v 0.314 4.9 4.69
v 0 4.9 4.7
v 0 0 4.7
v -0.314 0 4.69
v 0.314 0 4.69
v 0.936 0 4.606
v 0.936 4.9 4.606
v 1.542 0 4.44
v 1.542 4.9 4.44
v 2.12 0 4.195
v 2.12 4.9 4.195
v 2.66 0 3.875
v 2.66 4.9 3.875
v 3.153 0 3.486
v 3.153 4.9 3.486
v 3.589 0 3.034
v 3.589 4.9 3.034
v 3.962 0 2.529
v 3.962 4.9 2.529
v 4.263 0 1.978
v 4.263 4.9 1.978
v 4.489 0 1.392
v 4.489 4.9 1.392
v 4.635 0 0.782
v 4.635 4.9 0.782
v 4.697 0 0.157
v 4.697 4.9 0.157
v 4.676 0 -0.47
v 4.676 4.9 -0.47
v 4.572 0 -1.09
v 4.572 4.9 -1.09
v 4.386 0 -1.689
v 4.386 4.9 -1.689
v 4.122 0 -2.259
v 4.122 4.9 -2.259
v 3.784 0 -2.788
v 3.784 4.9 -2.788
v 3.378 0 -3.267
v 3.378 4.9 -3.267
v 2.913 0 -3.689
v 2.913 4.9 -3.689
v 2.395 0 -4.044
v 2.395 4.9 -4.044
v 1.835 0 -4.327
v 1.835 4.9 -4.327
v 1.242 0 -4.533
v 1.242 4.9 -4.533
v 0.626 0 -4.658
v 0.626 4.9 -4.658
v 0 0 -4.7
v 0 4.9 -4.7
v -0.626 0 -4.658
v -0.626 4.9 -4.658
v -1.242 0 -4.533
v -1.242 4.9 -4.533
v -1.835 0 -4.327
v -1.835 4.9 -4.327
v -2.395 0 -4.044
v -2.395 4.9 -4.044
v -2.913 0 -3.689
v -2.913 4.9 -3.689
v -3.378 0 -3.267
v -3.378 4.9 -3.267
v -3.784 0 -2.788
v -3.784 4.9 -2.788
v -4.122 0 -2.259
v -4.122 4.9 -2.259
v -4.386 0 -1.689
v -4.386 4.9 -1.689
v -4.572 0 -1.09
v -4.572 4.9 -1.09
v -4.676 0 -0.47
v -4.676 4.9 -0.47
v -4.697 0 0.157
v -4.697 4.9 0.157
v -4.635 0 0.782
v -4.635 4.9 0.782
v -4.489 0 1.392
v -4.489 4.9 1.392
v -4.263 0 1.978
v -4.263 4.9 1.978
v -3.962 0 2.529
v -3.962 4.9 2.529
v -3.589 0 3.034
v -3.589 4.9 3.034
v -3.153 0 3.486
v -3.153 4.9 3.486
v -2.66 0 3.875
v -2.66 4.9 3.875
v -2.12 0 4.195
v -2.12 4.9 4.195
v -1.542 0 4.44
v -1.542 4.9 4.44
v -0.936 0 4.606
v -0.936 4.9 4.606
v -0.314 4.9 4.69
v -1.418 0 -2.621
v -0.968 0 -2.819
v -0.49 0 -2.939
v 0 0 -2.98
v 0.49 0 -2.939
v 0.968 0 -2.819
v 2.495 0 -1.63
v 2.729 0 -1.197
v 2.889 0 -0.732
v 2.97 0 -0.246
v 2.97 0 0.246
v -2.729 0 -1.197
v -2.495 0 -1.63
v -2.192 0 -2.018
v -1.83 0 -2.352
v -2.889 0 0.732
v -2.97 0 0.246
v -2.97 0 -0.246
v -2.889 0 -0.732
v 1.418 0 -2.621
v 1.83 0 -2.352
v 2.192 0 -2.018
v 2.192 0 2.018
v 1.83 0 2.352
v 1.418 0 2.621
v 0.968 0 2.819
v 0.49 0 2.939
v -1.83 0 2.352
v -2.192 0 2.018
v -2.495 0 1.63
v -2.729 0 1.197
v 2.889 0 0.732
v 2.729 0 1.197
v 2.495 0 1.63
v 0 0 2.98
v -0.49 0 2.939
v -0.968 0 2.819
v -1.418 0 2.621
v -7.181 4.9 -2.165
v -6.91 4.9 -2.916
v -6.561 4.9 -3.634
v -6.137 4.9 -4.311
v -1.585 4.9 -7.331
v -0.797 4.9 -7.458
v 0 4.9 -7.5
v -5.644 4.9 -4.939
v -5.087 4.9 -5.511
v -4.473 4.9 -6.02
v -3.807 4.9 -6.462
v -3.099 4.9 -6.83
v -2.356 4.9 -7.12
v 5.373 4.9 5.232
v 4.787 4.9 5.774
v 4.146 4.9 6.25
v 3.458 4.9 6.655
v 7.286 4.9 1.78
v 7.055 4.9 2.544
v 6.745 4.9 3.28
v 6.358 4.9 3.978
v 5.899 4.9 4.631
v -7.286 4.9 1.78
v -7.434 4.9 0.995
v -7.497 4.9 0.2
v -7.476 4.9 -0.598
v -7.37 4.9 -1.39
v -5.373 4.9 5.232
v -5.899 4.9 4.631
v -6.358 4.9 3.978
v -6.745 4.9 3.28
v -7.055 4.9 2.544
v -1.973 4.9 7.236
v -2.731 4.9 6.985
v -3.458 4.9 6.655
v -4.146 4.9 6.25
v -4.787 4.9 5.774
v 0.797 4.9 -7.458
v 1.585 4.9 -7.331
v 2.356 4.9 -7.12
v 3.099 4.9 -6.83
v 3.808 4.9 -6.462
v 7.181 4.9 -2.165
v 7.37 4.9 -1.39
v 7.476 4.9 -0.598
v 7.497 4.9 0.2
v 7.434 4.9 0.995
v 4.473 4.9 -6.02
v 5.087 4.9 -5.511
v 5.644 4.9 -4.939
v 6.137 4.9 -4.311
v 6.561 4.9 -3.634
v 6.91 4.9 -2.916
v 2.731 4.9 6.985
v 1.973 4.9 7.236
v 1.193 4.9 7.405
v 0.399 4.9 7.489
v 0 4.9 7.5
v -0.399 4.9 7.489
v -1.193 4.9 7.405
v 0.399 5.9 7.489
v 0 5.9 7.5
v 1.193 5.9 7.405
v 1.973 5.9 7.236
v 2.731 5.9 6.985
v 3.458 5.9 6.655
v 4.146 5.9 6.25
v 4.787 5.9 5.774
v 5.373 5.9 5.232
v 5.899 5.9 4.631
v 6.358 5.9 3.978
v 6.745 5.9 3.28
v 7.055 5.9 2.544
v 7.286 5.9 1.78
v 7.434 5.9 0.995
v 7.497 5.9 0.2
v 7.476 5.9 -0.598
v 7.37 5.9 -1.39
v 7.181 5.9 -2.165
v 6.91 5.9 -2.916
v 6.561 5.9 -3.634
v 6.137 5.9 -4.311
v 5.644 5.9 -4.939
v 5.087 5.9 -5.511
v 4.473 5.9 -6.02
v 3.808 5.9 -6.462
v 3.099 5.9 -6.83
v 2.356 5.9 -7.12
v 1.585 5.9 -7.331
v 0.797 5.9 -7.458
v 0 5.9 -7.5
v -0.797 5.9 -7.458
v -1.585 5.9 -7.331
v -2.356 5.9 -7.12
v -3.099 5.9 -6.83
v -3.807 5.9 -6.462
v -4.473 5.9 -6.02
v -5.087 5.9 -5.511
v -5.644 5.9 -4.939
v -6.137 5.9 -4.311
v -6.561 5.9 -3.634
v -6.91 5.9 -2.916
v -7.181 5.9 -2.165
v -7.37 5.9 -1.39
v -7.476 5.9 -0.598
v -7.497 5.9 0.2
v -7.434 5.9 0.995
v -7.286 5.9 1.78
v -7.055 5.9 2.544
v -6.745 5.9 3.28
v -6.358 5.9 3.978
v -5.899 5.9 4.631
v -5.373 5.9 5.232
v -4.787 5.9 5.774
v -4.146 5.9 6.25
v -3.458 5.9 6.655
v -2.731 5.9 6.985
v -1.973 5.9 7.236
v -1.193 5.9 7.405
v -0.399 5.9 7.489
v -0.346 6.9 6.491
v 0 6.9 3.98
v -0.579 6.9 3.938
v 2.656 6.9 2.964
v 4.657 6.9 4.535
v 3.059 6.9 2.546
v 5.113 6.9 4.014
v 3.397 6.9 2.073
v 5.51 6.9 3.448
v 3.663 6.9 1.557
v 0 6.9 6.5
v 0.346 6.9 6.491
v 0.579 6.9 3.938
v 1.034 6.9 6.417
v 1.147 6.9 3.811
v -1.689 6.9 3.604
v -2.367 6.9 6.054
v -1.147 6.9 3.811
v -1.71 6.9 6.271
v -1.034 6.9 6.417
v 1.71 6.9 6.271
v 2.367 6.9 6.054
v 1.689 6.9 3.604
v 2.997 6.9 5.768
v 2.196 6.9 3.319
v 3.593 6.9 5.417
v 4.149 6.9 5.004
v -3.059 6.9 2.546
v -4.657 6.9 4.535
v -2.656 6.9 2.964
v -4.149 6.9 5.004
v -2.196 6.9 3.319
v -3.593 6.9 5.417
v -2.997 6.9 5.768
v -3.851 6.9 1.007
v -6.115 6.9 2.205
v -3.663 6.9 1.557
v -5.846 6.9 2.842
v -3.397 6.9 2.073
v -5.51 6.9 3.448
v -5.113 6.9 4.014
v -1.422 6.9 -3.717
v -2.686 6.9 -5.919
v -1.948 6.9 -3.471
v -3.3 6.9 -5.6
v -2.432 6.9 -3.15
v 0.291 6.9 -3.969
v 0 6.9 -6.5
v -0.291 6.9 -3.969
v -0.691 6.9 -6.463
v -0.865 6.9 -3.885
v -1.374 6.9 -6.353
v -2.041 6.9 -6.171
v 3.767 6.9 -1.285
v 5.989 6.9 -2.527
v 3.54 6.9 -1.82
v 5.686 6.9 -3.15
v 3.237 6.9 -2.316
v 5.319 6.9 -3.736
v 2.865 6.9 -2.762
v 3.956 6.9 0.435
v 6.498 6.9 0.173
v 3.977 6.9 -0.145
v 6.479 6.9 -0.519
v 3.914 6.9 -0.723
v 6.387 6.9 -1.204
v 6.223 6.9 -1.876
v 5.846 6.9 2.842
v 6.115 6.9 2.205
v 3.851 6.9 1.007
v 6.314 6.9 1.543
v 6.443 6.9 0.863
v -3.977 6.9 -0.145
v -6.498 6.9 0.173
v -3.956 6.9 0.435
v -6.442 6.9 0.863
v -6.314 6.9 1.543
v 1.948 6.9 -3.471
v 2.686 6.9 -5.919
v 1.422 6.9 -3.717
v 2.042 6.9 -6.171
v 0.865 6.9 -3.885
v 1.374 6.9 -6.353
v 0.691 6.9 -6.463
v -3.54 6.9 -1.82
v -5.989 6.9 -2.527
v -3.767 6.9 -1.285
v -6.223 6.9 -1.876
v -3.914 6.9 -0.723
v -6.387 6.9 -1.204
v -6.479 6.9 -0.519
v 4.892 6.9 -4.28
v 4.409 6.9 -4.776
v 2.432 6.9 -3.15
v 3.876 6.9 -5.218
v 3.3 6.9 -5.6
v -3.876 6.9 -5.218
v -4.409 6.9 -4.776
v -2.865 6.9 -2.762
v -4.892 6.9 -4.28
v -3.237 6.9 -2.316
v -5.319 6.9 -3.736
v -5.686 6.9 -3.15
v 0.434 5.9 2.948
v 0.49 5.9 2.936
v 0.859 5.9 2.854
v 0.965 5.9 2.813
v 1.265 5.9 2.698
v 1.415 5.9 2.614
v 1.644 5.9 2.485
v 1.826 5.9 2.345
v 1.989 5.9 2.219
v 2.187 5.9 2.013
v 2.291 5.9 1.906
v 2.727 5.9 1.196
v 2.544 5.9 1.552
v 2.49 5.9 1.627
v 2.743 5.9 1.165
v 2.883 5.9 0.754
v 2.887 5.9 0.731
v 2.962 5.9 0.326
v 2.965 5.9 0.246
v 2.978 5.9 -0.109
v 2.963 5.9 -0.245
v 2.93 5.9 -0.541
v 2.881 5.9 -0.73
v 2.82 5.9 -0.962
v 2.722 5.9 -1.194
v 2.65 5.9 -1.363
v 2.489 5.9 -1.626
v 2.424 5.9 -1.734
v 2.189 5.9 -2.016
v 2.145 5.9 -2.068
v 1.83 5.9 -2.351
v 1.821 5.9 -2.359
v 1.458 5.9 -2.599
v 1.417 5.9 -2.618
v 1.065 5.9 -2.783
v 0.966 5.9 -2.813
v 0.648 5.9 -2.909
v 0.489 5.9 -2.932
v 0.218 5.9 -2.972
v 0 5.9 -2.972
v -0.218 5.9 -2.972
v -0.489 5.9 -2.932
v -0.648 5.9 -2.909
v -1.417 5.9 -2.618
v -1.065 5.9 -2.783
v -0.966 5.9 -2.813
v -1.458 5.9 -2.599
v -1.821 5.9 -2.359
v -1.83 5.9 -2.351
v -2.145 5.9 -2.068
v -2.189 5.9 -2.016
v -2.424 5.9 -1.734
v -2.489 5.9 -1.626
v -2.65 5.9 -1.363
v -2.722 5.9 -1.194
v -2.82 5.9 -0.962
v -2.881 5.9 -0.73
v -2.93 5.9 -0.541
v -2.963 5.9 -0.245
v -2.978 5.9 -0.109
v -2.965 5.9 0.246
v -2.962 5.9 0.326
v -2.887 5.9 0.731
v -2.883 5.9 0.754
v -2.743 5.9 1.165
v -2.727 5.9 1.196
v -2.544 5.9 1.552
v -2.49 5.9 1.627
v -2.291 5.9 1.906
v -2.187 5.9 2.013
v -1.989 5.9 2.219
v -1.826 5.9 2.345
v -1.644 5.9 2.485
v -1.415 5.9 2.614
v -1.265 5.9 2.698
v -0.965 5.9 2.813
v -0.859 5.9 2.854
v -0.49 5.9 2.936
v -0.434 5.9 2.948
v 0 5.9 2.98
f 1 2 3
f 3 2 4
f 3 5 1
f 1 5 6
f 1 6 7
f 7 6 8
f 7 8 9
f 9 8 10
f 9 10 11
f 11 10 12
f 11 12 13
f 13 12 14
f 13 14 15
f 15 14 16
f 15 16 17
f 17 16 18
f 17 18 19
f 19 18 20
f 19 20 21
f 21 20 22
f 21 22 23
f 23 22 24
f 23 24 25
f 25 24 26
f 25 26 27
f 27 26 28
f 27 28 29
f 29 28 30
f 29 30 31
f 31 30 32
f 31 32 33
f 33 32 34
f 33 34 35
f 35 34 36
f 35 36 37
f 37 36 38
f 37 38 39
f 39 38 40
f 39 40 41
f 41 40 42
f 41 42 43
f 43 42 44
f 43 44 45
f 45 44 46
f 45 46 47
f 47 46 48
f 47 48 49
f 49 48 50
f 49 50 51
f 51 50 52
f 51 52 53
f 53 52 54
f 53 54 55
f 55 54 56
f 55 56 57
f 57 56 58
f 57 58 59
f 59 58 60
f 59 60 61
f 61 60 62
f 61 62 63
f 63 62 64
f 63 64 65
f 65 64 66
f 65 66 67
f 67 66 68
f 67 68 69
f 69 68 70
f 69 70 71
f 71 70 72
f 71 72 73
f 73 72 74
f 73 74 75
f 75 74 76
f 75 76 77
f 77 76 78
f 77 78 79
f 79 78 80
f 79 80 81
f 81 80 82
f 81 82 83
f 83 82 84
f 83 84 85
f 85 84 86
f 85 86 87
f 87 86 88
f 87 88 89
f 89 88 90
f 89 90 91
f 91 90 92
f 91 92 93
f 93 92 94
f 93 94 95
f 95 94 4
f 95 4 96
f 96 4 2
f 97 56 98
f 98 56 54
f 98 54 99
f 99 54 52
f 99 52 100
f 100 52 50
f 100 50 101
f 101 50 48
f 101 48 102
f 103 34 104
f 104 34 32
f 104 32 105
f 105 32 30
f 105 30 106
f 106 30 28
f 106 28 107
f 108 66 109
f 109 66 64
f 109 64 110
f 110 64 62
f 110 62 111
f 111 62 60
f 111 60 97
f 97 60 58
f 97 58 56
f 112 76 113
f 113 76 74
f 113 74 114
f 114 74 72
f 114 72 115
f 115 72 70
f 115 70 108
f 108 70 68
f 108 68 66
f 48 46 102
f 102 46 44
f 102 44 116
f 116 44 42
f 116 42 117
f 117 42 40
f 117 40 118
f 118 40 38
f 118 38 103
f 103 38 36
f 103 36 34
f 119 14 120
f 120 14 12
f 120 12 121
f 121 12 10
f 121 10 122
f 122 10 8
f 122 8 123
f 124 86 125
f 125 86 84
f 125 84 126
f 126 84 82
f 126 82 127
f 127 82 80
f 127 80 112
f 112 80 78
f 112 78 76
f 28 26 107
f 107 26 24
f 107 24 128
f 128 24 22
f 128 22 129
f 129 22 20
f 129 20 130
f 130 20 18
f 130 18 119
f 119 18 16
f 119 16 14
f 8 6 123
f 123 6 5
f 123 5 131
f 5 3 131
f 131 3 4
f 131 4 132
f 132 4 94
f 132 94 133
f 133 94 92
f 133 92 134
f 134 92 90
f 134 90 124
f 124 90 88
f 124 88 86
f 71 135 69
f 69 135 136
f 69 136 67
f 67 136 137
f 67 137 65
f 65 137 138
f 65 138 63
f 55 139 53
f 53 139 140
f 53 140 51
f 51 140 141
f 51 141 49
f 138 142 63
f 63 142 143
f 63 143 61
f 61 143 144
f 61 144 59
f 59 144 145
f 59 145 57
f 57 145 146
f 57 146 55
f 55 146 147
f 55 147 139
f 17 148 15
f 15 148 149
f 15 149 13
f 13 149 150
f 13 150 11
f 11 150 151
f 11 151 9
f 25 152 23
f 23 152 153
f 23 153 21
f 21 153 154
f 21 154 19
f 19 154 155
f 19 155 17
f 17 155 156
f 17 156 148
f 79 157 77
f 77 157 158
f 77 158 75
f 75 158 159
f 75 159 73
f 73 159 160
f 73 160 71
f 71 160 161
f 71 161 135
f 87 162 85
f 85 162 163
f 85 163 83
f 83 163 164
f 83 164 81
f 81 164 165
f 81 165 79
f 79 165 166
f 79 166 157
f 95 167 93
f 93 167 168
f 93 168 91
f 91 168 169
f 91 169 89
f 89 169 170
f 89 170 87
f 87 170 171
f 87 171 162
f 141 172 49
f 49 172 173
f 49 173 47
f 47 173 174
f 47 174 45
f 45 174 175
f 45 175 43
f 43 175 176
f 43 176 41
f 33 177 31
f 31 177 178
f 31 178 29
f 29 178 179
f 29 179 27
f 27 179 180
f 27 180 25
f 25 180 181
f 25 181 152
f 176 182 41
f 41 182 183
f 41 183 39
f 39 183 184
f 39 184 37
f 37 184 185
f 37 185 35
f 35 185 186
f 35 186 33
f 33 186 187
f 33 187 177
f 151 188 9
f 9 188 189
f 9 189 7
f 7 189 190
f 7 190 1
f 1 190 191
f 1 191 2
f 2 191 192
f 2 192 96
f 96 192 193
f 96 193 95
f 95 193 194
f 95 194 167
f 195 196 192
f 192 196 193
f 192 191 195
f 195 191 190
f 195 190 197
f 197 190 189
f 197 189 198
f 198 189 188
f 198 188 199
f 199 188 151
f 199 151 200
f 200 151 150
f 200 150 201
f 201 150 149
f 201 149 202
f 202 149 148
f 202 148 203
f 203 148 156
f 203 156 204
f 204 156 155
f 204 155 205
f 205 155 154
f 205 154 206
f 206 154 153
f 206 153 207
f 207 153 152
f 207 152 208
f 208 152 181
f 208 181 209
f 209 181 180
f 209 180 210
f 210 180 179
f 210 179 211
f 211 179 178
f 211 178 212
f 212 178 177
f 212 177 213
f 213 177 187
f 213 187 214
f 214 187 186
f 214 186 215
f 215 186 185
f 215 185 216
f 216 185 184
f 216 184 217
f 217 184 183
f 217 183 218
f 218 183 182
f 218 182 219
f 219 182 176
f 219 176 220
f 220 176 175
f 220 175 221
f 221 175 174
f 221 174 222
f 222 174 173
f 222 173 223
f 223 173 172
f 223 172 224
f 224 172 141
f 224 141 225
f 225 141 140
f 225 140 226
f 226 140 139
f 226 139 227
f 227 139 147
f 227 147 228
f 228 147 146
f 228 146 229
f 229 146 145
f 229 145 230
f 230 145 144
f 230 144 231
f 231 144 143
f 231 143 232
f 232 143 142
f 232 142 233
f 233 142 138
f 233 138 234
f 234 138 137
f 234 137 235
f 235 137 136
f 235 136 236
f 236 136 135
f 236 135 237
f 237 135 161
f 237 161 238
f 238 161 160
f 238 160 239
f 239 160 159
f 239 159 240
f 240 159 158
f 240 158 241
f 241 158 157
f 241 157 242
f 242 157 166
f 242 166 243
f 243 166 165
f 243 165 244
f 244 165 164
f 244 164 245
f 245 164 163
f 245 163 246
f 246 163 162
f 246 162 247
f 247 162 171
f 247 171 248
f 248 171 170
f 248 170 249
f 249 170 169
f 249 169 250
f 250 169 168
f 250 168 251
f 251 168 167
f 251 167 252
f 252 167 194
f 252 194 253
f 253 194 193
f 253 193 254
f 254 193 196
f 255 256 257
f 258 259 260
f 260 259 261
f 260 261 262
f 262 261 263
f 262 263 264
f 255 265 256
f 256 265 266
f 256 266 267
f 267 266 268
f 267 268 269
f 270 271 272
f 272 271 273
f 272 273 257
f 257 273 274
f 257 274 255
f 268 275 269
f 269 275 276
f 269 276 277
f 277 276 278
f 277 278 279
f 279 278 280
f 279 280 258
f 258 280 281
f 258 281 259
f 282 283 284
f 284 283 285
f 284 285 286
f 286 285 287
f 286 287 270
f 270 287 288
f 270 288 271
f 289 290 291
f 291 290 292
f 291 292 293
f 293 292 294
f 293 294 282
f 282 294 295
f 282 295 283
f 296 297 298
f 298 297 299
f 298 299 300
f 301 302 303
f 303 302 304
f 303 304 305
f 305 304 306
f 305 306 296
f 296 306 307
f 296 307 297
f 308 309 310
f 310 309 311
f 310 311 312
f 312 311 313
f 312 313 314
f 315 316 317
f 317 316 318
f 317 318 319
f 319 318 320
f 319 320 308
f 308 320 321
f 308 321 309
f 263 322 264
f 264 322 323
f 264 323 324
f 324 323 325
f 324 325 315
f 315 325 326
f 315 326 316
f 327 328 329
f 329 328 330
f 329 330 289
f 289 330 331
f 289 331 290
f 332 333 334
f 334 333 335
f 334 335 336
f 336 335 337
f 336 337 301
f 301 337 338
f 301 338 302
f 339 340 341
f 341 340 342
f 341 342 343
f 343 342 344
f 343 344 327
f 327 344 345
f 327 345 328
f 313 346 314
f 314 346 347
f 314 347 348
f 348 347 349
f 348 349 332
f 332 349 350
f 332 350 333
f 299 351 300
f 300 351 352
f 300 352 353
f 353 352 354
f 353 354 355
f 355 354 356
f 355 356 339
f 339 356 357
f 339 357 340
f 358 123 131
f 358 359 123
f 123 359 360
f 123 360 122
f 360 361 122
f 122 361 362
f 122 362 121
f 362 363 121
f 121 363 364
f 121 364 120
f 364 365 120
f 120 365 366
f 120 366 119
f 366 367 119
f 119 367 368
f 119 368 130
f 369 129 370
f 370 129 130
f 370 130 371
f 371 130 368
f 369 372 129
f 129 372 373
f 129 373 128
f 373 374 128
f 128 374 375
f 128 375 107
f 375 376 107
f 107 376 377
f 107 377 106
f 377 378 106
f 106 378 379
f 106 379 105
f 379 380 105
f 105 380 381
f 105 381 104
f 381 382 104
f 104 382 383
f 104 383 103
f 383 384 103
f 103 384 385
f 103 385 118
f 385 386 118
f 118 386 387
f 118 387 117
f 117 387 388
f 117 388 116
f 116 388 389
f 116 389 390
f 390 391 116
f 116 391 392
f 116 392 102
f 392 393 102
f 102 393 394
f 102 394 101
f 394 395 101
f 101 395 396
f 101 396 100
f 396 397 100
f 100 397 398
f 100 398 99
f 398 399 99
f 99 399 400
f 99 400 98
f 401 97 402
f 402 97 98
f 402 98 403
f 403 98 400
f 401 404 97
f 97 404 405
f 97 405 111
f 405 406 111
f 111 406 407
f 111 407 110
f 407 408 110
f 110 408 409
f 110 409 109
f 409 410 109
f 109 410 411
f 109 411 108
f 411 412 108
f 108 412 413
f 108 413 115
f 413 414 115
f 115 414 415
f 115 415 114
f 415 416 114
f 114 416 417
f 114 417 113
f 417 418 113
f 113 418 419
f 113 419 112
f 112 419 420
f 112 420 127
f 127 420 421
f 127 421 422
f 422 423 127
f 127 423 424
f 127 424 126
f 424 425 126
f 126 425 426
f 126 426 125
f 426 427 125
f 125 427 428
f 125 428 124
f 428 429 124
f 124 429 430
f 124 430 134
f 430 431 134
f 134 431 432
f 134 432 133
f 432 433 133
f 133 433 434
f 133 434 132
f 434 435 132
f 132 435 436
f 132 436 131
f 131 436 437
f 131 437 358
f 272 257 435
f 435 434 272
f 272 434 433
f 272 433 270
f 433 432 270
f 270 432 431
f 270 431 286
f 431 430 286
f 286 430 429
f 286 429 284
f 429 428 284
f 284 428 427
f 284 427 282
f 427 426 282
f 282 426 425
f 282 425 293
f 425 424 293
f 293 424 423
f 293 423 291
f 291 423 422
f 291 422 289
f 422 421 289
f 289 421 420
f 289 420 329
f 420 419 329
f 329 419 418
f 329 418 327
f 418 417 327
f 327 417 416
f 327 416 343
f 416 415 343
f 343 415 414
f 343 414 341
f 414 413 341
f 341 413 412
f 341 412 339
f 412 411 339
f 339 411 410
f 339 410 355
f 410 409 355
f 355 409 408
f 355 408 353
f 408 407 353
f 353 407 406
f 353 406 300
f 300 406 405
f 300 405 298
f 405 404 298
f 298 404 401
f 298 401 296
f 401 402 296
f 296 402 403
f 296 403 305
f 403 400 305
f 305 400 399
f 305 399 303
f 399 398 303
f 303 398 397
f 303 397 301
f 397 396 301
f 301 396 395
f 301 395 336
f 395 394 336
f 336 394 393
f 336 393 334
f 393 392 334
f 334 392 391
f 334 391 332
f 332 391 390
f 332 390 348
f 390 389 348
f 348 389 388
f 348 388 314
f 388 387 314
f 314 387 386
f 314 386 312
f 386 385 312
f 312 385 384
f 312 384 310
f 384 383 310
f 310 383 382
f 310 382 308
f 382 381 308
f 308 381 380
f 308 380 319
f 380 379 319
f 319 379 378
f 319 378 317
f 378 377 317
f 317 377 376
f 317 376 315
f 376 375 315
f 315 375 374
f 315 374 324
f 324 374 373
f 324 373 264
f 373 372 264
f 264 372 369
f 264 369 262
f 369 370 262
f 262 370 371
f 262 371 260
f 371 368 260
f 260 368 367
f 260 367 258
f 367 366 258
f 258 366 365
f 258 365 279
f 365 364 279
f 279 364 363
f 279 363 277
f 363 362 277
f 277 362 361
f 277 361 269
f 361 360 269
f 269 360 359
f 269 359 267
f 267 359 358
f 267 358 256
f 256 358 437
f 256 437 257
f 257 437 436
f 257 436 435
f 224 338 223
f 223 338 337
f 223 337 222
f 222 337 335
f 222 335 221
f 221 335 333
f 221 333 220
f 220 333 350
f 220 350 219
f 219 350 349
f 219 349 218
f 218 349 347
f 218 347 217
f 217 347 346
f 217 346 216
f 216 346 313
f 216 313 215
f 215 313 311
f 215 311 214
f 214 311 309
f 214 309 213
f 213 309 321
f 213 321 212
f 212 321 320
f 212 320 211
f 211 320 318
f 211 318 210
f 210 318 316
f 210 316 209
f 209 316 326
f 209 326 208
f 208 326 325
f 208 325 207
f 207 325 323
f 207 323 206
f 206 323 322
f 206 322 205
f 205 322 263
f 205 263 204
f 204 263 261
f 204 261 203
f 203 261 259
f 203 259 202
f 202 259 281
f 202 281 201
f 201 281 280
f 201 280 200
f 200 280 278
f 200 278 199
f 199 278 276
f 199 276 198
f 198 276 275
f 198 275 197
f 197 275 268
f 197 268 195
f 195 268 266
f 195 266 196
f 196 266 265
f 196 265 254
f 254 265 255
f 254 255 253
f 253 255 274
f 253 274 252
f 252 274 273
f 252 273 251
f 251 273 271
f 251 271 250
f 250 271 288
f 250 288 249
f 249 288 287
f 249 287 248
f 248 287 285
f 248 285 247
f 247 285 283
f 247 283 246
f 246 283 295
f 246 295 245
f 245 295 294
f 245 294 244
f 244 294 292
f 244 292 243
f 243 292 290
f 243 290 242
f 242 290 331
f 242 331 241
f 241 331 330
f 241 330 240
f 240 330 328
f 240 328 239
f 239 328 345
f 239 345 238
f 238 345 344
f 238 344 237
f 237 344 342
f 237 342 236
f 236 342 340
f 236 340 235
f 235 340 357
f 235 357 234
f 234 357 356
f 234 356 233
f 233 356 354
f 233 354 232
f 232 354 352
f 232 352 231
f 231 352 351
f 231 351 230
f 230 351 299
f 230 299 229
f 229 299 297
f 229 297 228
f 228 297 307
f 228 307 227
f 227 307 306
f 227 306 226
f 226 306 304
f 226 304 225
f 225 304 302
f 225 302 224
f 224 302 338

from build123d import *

# Parameters (mm, degrees)
SKETCH1_R           = 4.7
BOSS_EXTRUDE1_DEPTH = 4.9
SKETCH2_R           = 7.5
BOSS_EXTRUDE2_DEPTH = 2
SKETCH3_R           = 2.98
CUT_EXTRUDE1_DEPTH  = 7.9
CHAMFER1_SIZE       = 1
CHAMFER2_SIZE       = 1


with BuildPart() as part:
    # Sketch1 → Boss-Extrude1 (new body)
    with BuildSketch(Plane(origin=(0, 0, 0), x_dir=(1, 0, 0), z_dir=(0, 1, 0))):
        Circle(SKETCH1_R)
    extrude(amount=BOSS_EXTRUDE1_DEPTH)

    # Sketch2 → Boss-Extrude2 (add)
    with BuildSketch(Plane(origin=(0, 4.9, 0), x_dir=(1, 0, 0), z_dir=(0, 1, 0))):
        Circle(SKETCH2_R)
    extrude(amount=BOSS_EXTRUDE2_DEPTH)

    # Sketch3 → Cut-Extrude1 (cut, through all)
    with BuildSketch(Plane(origin=(0, 6.9, 0), x_dir=(1, 0, 0), z_dir=(0, 1, 0))):
        Circle(SKETCH3_R)
    extrude(amount=-CUT_EXTRUDE1_DEPTH, mode=Mode.SUBTRACT)

    # Chamfer1
    chamfer1_edges = [part.edges().sort_by_distance(p)[0] for p in [
        (-2.98, 6.9, 0),
    ]]
    chamfer(chamfer1_edges, length=CHAMFER1_SIZE)

    # Chamfer2
    chamfer2_edges = [part.edges().sort_by_distance(p)[0] for p in [
        (-7.5, 6.9, 0),
    ]]
    chamfer(chamfer2_edges, length=CHAMFER2_SIZE)


solid = part.part
